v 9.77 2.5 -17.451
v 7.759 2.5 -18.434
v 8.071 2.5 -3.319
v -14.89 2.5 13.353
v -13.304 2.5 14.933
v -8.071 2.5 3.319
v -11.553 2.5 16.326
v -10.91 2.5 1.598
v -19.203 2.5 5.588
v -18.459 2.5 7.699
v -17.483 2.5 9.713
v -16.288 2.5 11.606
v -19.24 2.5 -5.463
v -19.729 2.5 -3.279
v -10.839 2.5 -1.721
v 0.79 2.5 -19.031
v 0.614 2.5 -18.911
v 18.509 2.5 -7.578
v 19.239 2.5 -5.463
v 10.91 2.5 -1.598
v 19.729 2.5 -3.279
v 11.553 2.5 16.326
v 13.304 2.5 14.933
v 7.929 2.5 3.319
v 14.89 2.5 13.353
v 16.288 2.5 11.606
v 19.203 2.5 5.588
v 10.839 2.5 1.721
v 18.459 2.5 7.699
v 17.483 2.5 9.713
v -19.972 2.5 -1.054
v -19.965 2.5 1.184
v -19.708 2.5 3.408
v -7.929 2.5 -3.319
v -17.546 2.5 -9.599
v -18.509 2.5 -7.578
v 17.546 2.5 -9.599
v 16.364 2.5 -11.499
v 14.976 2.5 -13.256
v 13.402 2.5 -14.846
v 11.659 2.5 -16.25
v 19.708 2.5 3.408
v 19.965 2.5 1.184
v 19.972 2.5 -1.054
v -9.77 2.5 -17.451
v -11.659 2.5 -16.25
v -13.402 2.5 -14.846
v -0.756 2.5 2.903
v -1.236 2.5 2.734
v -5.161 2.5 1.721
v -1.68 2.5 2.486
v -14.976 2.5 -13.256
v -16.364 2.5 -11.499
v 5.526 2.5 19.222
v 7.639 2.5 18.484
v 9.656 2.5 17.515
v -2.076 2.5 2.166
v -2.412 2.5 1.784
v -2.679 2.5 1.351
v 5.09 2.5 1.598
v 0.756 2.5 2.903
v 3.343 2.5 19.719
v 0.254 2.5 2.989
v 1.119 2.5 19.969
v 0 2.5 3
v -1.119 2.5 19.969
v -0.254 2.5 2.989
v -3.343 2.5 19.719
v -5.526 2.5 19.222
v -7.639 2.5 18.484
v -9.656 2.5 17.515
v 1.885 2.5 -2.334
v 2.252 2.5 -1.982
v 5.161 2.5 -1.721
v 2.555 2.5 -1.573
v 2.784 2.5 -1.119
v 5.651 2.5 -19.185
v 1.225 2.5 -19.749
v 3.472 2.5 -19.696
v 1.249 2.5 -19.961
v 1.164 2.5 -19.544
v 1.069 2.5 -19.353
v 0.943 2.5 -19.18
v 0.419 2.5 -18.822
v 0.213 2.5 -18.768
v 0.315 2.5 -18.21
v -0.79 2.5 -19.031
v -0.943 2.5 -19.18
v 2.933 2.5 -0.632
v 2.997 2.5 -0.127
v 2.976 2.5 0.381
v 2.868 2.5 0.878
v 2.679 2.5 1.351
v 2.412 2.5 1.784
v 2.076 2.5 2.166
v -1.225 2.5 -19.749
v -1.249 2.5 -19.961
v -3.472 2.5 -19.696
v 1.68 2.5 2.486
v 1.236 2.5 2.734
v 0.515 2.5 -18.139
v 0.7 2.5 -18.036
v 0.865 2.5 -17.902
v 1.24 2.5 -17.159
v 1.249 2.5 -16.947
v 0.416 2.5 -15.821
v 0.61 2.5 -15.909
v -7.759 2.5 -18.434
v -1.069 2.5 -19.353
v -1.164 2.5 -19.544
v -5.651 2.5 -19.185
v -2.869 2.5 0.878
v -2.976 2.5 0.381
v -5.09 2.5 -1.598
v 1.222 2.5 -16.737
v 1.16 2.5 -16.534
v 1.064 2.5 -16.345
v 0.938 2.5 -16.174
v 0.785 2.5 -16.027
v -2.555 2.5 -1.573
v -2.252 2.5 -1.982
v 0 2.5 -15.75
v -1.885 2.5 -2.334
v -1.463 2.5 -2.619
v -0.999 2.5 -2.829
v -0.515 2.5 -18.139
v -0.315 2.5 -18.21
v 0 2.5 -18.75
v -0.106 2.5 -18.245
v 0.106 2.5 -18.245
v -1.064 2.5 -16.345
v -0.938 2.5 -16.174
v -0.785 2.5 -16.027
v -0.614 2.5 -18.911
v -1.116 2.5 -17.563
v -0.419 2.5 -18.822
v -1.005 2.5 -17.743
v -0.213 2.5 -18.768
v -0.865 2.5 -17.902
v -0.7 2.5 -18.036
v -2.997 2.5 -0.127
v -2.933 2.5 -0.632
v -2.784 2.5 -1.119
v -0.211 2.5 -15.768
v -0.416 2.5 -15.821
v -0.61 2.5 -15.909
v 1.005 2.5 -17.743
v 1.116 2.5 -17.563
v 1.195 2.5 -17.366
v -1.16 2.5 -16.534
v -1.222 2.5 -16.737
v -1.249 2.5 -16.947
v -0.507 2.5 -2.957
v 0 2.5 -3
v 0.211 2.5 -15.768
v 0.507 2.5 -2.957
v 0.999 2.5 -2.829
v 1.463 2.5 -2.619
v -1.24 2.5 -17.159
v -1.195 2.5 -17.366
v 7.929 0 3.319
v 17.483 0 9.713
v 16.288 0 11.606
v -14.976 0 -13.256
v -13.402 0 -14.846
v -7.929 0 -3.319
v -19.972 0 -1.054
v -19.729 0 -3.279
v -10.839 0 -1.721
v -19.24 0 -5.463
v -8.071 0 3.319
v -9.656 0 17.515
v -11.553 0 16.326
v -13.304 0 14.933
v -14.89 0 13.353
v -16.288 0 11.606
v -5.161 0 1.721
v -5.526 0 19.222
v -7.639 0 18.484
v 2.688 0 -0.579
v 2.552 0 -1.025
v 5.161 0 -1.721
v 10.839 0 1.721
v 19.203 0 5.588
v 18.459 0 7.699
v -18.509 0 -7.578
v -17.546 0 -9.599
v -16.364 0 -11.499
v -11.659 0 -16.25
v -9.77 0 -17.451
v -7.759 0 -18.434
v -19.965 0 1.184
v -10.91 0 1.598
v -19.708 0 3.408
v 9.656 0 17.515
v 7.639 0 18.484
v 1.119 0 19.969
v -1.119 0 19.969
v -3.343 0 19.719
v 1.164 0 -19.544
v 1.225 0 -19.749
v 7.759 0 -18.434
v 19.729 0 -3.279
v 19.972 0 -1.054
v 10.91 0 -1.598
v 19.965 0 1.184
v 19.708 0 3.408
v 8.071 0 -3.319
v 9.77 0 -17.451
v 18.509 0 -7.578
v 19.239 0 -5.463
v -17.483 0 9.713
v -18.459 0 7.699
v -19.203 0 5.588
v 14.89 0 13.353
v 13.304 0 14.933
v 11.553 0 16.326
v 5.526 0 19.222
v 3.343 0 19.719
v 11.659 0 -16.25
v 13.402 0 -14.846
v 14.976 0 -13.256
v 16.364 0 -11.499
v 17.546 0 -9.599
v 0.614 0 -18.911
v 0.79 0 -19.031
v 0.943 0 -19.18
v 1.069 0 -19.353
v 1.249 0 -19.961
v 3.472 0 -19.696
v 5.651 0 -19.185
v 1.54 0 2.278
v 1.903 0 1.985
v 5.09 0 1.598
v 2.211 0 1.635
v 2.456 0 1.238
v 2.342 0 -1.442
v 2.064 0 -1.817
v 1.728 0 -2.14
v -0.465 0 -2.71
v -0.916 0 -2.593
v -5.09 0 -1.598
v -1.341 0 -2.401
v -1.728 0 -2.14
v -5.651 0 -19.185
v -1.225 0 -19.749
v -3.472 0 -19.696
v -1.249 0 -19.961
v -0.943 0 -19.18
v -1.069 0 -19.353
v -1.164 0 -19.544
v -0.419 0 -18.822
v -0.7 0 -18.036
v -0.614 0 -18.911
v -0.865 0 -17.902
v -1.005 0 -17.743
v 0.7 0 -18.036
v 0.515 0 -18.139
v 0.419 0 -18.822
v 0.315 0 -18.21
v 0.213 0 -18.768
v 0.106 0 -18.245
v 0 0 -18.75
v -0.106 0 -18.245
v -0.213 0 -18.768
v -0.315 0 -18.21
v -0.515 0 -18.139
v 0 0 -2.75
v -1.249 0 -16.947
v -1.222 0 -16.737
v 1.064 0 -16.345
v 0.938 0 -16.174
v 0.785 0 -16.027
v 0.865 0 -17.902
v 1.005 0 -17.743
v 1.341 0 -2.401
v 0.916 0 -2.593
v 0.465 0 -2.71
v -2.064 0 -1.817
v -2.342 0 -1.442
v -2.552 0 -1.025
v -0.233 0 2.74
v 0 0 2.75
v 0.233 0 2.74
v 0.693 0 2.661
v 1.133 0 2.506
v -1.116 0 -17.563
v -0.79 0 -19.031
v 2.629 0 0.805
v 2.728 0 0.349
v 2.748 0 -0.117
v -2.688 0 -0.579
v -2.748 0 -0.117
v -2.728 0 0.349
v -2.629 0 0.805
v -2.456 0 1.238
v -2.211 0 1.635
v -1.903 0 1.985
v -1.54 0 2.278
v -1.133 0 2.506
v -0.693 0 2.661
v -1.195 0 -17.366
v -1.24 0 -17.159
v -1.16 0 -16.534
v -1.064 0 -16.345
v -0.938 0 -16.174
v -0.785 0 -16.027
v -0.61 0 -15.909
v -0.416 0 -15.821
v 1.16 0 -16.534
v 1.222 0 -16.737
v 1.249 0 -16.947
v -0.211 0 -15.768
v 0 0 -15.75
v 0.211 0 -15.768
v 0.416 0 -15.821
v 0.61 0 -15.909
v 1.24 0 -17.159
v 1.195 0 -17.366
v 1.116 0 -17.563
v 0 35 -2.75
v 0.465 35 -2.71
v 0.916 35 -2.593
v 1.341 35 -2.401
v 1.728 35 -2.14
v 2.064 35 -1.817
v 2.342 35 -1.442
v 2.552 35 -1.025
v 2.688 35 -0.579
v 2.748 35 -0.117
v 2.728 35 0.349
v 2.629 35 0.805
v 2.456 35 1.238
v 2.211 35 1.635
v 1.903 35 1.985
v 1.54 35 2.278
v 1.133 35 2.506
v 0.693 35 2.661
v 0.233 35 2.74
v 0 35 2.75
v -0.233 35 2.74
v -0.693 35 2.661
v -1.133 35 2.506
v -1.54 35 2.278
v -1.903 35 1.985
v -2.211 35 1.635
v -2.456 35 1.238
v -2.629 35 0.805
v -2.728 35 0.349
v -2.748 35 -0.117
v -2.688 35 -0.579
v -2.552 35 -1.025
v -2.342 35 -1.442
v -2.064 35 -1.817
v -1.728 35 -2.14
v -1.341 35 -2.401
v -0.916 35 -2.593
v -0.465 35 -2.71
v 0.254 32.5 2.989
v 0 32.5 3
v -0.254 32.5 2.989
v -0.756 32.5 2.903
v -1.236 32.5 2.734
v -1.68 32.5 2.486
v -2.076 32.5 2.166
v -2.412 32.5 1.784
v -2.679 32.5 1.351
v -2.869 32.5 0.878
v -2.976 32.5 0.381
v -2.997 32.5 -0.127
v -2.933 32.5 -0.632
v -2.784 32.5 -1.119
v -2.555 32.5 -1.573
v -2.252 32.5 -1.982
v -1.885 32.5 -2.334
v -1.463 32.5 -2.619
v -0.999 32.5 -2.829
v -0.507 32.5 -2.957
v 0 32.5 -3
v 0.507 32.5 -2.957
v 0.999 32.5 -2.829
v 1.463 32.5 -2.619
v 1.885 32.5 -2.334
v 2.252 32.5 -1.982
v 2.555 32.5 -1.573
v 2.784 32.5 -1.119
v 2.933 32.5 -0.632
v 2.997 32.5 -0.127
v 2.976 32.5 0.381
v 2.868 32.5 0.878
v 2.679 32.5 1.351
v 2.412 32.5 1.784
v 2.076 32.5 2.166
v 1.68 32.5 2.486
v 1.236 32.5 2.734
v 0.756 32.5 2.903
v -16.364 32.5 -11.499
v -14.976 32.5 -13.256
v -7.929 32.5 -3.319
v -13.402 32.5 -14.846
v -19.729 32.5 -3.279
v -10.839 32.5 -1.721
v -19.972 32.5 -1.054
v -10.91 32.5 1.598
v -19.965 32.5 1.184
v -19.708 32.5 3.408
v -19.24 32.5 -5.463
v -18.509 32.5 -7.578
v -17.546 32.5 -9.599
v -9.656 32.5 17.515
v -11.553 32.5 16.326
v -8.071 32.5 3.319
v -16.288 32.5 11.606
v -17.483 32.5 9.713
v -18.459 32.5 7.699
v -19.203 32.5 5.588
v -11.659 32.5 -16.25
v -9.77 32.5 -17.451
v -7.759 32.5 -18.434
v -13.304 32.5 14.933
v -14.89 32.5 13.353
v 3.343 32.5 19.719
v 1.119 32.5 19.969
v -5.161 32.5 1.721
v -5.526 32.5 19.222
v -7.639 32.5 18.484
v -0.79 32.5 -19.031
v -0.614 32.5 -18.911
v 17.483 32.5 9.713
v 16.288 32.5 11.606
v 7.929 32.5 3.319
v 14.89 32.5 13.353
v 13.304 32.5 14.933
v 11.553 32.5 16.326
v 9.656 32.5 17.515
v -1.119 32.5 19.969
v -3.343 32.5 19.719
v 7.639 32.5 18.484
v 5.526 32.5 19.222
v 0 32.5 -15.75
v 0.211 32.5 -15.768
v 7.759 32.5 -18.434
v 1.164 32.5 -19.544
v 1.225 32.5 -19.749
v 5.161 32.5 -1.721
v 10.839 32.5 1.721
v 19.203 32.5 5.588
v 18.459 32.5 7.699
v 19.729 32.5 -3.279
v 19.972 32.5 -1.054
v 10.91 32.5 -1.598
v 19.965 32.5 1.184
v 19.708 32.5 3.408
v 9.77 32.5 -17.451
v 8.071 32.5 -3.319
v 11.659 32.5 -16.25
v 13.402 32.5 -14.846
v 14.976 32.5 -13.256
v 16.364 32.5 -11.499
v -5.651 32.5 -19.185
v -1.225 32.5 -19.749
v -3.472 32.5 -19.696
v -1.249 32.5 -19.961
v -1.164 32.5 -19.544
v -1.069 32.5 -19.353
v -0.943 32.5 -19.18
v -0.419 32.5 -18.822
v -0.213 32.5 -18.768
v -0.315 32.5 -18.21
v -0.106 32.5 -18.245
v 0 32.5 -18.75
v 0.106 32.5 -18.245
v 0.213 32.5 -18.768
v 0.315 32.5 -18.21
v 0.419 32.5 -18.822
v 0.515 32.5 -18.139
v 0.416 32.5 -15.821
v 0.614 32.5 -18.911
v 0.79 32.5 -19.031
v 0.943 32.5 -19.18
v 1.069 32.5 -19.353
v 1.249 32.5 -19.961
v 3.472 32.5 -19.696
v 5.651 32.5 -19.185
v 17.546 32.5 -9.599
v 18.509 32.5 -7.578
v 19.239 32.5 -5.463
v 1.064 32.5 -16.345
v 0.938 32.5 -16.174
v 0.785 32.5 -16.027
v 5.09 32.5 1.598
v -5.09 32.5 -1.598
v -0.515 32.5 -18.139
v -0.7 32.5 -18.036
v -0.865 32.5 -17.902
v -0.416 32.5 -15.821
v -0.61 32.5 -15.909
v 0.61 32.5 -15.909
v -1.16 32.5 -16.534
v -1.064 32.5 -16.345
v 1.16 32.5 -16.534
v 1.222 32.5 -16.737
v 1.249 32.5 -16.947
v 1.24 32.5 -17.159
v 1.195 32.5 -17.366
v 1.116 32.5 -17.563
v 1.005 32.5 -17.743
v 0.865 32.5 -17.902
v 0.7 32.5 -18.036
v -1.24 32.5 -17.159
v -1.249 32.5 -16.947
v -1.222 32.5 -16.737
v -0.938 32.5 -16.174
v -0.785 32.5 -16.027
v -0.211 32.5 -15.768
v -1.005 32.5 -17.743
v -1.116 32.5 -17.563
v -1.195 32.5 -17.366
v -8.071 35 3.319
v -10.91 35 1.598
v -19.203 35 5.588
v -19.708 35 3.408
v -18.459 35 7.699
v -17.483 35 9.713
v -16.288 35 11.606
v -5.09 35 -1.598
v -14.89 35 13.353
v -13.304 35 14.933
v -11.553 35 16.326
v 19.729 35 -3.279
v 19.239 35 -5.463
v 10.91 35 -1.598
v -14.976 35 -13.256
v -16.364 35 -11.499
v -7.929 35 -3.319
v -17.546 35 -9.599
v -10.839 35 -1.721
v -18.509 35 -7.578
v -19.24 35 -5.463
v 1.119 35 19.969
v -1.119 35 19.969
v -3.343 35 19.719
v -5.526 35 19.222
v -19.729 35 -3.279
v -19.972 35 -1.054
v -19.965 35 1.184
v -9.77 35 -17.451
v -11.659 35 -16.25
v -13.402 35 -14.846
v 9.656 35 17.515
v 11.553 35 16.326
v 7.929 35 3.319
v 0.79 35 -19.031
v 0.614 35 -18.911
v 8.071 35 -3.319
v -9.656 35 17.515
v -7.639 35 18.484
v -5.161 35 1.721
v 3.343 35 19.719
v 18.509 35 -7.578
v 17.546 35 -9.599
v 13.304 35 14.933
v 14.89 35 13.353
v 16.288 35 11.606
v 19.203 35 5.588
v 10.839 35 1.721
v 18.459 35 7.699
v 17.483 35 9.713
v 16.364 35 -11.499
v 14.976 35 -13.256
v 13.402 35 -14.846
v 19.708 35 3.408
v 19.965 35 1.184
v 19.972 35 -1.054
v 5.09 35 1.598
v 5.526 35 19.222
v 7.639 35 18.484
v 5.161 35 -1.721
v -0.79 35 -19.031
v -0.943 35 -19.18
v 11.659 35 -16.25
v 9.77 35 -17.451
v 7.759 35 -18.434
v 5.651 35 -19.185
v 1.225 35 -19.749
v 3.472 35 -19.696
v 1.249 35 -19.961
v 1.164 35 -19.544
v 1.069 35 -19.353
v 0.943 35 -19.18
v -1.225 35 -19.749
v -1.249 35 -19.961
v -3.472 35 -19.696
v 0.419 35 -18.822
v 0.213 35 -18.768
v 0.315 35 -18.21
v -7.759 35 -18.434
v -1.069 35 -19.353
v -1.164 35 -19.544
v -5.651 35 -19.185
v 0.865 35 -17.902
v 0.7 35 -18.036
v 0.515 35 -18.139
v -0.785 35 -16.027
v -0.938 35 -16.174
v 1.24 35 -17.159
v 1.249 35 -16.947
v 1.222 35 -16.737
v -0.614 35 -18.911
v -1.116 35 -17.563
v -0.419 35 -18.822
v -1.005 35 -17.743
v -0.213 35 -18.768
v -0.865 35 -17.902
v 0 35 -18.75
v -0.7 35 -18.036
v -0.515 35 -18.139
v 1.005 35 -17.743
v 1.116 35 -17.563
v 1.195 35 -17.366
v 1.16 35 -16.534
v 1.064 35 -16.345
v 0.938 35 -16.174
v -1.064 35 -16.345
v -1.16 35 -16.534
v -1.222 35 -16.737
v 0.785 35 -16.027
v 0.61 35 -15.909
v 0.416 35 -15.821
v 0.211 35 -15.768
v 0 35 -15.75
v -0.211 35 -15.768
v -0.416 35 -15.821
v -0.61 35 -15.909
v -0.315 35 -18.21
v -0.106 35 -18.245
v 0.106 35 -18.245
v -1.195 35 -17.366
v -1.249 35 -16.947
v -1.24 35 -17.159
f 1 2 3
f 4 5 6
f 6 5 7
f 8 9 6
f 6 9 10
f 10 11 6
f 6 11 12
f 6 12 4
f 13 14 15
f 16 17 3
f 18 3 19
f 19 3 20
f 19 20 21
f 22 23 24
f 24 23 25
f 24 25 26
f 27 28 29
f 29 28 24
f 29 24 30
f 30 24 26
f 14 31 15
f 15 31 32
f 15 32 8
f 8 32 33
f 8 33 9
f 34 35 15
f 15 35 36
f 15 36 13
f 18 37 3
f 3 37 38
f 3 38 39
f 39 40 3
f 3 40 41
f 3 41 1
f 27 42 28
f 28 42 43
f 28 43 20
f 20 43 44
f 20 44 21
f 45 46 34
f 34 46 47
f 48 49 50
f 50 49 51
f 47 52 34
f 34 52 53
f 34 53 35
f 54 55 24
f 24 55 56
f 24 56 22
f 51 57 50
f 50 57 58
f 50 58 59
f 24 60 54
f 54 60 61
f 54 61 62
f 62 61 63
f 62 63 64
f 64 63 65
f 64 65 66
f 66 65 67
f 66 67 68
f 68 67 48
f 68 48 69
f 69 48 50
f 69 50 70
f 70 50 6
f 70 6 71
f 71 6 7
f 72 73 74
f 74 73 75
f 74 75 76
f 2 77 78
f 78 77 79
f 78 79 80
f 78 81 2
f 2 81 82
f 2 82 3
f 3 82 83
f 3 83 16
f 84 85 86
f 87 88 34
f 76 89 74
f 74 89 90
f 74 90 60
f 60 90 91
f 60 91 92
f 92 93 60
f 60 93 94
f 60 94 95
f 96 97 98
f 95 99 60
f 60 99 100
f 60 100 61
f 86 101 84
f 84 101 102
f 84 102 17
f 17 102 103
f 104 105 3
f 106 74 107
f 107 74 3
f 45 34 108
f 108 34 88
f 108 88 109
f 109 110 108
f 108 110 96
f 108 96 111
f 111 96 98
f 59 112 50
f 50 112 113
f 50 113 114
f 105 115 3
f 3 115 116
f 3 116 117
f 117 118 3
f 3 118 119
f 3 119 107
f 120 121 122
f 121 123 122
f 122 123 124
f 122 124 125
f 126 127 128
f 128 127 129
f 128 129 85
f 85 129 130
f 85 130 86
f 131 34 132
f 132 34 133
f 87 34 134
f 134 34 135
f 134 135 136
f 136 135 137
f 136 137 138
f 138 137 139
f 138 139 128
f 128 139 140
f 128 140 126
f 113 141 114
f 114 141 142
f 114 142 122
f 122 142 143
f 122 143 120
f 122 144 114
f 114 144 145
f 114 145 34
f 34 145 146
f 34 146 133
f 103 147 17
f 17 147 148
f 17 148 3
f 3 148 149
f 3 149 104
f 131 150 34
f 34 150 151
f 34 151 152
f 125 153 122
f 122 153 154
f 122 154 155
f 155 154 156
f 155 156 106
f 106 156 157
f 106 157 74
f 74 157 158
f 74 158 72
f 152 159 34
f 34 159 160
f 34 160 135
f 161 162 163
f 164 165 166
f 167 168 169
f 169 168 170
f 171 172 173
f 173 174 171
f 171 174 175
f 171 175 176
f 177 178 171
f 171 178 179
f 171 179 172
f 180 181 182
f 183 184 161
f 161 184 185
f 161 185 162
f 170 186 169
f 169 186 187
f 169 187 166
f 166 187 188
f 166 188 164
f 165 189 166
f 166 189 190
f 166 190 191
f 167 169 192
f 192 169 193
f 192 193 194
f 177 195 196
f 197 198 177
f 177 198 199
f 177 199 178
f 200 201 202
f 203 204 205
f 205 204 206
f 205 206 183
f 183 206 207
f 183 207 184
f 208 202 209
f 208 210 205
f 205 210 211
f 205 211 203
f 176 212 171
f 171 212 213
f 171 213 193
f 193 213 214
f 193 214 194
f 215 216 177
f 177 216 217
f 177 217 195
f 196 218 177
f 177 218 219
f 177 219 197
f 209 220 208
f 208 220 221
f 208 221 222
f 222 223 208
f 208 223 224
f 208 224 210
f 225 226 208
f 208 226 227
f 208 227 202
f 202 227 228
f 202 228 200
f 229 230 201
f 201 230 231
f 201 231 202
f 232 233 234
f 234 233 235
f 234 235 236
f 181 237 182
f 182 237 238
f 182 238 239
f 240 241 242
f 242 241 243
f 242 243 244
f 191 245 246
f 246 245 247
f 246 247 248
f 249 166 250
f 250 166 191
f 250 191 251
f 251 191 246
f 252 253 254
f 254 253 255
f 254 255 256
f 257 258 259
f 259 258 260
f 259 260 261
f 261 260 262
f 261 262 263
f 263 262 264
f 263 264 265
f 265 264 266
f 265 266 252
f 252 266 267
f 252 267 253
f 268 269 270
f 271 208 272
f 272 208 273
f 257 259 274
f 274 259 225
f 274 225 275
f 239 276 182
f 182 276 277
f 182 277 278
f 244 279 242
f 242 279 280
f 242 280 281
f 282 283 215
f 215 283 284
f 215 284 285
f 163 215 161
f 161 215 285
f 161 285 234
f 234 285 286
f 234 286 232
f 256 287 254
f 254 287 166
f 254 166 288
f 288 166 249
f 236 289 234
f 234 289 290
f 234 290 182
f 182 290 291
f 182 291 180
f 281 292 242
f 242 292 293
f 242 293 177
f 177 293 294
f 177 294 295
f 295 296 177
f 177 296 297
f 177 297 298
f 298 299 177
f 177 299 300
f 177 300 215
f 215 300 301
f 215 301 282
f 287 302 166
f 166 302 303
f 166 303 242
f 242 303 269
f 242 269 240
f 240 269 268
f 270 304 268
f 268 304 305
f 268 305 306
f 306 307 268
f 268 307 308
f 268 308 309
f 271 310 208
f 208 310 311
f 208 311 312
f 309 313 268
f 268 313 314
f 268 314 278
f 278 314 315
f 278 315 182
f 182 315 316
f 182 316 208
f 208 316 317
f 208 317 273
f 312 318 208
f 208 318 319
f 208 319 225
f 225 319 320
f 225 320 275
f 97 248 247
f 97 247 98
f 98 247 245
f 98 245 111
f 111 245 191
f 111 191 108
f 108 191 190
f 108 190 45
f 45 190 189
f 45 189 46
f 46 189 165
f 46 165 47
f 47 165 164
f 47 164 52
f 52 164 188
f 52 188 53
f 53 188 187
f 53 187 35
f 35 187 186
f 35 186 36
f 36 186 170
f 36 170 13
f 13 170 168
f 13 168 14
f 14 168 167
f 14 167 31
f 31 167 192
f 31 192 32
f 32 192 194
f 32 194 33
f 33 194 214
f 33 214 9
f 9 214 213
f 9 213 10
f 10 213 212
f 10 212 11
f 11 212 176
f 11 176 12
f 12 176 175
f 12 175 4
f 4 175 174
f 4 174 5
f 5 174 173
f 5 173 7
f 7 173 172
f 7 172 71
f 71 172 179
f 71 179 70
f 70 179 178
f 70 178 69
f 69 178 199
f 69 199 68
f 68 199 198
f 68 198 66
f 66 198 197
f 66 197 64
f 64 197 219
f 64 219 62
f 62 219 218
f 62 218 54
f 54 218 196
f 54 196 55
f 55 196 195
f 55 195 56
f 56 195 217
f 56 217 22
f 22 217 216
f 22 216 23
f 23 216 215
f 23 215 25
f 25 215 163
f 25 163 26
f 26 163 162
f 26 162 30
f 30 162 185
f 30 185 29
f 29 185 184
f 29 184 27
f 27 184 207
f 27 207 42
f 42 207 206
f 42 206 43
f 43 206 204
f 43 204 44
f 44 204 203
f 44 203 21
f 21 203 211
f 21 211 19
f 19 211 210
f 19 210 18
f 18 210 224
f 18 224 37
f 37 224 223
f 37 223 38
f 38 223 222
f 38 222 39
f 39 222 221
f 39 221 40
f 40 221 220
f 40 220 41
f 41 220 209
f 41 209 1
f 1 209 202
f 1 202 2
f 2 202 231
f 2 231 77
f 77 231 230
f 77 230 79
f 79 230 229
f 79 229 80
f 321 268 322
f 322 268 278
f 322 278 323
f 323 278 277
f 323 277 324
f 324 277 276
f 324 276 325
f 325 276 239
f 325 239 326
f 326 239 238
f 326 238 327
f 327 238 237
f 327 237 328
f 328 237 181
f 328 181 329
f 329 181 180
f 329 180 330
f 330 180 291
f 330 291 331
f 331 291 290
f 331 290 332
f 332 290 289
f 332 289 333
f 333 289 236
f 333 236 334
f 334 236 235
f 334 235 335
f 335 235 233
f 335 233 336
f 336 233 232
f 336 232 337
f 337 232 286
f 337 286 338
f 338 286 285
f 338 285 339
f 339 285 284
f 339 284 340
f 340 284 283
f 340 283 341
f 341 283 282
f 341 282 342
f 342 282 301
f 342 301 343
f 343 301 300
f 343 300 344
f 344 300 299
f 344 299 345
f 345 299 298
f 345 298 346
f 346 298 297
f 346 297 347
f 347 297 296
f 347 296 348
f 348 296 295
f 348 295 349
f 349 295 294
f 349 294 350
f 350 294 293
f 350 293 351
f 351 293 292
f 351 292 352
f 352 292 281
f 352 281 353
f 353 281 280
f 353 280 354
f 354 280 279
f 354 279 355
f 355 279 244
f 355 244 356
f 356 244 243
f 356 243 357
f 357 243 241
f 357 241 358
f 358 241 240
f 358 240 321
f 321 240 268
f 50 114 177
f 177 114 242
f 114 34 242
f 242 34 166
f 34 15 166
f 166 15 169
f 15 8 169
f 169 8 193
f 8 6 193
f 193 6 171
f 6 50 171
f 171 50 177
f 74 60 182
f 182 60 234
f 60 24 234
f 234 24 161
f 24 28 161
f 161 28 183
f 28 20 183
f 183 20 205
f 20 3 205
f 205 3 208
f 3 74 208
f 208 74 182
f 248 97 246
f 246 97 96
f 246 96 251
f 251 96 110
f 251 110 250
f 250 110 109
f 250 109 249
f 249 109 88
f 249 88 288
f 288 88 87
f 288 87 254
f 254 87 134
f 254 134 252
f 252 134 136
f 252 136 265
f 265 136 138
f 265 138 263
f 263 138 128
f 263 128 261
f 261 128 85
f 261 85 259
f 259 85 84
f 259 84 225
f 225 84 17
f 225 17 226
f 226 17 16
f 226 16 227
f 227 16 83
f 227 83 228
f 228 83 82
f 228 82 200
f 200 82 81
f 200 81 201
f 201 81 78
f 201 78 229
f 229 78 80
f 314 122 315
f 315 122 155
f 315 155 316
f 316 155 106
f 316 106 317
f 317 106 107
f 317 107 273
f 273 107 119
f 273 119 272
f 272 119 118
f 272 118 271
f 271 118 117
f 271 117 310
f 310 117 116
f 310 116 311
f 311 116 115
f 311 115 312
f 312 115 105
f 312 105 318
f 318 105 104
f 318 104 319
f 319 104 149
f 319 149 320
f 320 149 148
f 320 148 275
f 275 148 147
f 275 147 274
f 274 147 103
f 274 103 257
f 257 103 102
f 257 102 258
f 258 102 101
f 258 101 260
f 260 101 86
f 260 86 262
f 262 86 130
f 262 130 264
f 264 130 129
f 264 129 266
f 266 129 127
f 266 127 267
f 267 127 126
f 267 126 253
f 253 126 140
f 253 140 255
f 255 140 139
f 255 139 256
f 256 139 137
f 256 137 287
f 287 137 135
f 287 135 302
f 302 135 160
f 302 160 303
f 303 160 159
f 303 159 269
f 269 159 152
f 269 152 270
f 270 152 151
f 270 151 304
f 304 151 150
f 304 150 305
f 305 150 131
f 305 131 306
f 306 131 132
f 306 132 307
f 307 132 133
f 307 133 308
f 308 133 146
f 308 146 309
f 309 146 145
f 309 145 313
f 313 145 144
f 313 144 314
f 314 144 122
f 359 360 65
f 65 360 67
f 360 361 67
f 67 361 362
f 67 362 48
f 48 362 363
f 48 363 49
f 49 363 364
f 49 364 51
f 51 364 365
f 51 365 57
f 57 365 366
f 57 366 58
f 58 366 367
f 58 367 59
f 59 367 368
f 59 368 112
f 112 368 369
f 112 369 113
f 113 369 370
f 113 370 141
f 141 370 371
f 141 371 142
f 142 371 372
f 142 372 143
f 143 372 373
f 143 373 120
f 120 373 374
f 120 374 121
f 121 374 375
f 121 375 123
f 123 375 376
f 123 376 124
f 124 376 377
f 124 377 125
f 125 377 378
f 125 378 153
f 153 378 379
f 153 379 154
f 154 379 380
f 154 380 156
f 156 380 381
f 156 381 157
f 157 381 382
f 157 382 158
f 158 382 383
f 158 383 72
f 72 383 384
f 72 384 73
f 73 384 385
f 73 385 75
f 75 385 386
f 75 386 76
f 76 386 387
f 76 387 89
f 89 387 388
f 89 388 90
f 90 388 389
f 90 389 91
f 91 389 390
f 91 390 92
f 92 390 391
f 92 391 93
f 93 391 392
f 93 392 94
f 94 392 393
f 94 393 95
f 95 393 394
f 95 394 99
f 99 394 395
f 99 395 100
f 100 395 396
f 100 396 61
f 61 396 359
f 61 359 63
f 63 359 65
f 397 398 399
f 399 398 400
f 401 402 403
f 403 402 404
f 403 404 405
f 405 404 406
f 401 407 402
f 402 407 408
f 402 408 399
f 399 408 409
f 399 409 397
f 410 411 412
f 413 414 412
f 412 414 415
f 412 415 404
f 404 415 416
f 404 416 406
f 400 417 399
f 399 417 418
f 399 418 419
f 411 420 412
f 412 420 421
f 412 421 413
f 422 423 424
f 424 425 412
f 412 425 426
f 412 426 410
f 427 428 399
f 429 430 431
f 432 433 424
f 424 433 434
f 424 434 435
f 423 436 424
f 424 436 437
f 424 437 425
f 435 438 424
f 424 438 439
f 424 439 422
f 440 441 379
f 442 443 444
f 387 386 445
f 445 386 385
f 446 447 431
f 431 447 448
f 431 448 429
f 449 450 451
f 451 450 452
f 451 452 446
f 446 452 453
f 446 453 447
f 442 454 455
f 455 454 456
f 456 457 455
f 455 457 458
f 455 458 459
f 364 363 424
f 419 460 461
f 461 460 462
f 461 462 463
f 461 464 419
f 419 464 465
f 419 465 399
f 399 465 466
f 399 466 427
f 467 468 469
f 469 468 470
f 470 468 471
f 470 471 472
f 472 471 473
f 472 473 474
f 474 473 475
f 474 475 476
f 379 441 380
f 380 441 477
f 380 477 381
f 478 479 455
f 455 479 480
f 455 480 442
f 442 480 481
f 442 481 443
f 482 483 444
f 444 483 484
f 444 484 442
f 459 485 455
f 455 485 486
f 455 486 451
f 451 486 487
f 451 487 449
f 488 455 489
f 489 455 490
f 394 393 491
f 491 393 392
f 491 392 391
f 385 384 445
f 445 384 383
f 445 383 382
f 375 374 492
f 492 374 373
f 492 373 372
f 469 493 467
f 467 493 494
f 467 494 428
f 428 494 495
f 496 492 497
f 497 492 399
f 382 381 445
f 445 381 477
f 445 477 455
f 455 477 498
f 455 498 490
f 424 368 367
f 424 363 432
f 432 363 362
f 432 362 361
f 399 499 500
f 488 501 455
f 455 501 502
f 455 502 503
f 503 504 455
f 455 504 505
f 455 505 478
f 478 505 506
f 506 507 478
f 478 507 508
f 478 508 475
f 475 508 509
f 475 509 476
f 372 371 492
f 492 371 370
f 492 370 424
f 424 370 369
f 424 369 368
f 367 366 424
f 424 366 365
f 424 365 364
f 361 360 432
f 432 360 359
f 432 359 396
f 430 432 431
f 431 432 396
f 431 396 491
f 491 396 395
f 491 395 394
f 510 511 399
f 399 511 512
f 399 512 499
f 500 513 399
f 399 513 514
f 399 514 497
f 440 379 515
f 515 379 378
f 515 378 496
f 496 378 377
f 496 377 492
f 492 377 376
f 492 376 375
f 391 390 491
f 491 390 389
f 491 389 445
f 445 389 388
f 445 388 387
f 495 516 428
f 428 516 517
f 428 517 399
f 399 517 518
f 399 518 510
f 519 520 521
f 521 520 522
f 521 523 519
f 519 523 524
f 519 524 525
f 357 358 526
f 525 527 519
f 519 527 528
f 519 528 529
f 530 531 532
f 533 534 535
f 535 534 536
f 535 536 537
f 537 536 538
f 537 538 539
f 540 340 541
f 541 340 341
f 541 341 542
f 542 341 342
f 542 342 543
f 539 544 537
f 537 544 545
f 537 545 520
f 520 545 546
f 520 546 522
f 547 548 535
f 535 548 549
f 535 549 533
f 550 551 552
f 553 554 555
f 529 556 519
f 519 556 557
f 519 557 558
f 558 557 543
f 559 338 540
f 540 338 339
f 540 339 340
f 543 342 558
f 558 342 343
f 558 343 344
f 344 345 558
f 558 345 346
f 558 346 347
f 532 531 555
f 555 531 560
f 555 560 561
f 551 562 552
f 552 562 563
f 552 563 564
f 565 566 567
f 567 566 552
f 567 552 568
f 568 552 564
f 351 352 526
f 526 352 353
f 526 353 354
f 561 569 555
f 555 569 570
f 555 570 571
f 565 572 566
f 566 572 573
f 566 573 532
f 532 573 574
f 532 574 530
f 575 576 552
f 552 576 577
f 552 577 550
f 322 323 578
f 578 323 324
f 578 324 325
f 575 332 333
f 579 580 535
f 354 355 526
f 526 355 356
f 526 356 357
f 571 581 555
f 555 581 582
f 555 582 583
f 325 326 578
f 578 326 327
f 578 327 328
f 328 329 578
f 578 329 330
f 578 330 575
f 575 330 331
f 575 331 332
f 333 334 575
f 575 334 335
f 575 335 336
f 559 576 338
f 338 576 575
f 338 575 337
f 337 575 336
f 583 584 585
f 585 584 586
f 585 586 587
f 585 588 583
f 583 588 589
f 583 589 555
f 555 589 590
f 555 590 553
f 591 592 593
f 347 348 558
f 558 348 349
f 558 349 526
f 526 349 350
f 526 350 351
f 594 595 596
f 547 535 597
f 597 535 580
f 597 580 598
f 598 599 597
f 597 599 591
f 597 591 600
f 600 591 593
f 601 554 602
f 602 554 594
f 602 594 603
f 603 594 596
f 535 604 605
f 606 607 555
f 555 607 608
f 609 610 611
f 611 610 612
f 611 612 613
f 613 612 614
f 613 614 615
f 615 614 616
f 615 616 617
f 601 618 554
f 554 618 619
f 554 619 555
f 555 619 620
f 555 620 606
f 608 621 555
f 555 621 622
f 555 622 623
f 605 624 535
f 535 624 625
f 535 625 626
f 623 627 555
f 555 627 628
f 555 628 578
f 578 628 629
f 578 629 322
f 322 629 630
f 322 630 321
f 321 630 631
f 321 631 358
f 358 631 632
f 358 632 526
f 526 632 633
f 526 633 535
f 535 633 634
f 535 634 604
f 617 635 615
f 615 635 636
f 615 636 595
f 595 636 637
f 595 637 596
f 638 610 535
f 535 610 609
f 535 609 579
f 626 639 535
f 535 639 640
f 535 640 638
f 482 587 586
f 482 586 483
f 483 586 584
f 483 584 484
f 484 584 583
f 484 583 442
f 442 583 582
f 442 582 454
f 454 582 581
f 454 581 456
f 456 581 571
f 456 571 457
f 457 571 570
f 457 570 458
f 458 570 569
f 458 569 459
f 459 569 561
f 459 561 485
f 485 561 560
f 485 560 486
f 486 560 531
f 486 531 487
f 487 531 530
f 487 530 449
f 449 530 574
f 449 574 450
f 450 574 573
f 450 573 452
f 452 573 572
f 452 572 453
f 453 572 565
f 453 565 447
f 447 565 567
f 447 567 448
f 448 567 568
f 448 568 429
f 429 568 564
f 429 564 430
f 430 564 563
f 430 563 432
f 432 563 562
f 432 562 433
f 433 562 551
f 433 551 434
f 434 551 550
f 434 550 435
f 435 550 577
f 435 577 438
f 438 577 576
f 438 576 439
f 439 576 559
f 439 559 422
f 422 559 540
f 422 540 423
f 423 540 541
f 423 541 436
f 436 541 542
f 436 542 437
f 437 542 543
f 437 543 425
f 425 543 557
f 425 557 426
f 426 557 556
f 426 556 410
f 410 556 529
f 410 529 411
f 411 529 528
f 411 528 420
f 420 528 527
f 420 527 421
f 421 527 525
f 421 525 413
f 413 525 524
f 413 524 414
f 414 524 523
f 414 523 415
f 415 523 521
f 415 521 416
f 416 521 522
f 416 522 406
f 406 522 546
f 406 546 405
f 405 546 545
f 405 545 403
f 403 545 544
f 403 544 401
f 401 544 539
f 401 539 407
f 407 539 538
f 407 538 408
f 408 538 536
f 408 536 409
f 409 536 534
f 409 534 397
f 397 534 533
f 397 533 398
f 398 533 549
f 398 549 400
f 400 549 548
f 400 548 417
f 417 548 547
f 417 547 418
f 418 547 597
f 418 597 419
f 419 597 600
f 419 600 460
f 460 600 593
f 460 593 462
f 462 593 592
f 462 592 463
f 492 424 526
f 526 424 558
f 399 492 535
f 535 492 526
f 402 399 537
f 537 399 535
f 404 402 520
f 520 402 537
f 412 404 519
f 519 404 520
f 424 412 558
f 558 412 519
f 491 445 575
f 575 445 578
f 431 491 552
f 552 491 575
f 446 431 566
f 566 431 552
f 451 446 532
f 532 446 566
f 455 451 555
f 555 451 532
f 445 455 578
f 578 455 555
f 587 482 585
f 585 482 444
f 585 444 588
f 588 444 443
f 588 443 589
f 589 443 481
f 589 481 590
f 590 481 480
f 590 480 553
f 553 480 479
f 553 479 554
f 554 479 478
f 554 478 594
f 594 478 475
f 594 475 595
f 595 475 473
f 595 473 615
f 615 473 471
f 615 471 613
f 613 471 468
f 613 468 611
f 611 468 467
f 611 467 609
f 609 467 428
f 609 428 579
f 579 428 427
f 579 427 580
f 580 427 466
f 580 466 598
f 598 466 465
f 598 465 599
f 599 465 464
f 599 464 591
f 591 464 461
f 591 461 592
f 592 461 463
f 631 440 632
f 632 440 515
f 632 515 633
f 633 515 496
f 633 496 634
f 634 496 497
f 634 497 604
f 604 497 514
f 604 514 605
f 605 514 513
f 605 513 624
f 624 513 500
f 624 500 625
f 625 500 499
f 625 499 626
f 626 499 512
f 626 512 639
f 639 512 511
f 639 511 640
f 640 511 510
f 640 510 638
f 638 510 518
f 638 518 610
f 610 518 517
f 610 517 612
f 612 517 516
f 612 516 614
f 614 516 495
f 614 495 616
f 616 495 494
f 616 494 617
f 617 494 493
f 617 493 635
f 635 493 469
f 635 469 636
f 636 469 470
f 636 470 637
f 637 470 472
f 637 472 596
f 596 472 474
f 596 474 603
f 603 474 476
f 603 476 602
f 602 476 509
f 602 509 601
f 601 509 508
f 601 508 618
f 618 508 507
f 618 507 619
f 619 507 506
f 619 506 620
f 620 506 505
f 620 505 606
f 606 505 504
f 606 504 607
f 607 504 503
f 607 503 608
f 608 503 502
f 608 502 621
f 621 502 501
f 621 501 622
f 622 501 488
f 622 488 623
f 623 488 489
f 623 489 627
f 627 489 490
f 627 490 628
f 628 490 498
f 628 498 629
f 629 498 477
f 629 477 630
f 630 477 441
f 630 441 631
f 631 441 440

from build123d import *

# Parameters (mm, degrees)
SKETCH1_R           = 20
SKETCH1_R_2         = 2.75
BOSS_EXTRUDE1_DEPTH = 2.5
CUT_EXTRUDE3_DEPTH  = 2.5
SKETCH4_R           = 1.25
CUT_EXTRUDE4_DEPTH  = 5
SKETCH2_R           = 3
SKETCH2_R_2         = 2.75
BOSS_EXTRUDE2_DEPTH = 15


with BuildPart() as part:
    # Sketch1 → Boss-Extrude1 (new body)
    with BuildSketch(Plane(origin=(0, 0, 0), x_dir=(1, 0, 0), z_dir=(0, 1, 0))):
        Circle(SKETCH1_R)
        Circle(SKETCH1_R_2, mode=Mode.SUBTRACT)
    extrude(amount=BOSS_EXTRUDE1_DEPTH)

    # Sketch3 → Cut-Extrude3 (cut)
    with BuildSketch(Plane.XZ):
        Polygon((-5.161329605, 1.721273866), (-8.071331697, 3.318997608), (-10.910002092, 1.597723742), (-10.838670395, -1.721273866), (-7.928668303, -3.318997608), (-5.089997908, -1.597723742), align=None)
        Polygon((5.161329605, -1.721273866), (8.071331697, -3.318997608), (10.910002092, -1.597723742), (10.838670395, 1.721273866), (7.928668303, 3.318997608), (5.089997908, 1.597723742), align=None)
    extrude(amount=-CUT_EXTRUDE3_DEPTH, mode=Mode.SUBTRACT)

    # Sketch4 → Cut-Extrude4 (cut)
    with BuildSketch(Plane(origin=(0, 2.5, 0), x_dir=(1, 0, 0), z_dir=(0, 1, 0))):
        with Locations((0, 17)):
            Circle(SKETCH4_R)
        with Locations((0, 20)):
            Circle(SKETCH4_R)
    extrude(amount=-CUT_EXTRUDE4_DEPTH, mode=Mode.SUBTRACT)

    # Sketch2 → Boss-Extrude2 (add)
    with BuildSketch(Plane(origin=(0, 2.5, 0), x_dir=(1, 0, 0), z_dir=(0, 1, 0))):
        Circle(SKETCH2_R)
        Circle(SKETCH2_R_2, mode=Mode.SUBTRACT)
    extrude(amount=BOSS_EXTRUDE2_DEPTH)

    # Mirror7: part across plane


with BuildPart() as part_1:
    add(part.part)
    add(part.part.mirror(Plane.ZX.offset(17.5)))


solid = part_1.part
